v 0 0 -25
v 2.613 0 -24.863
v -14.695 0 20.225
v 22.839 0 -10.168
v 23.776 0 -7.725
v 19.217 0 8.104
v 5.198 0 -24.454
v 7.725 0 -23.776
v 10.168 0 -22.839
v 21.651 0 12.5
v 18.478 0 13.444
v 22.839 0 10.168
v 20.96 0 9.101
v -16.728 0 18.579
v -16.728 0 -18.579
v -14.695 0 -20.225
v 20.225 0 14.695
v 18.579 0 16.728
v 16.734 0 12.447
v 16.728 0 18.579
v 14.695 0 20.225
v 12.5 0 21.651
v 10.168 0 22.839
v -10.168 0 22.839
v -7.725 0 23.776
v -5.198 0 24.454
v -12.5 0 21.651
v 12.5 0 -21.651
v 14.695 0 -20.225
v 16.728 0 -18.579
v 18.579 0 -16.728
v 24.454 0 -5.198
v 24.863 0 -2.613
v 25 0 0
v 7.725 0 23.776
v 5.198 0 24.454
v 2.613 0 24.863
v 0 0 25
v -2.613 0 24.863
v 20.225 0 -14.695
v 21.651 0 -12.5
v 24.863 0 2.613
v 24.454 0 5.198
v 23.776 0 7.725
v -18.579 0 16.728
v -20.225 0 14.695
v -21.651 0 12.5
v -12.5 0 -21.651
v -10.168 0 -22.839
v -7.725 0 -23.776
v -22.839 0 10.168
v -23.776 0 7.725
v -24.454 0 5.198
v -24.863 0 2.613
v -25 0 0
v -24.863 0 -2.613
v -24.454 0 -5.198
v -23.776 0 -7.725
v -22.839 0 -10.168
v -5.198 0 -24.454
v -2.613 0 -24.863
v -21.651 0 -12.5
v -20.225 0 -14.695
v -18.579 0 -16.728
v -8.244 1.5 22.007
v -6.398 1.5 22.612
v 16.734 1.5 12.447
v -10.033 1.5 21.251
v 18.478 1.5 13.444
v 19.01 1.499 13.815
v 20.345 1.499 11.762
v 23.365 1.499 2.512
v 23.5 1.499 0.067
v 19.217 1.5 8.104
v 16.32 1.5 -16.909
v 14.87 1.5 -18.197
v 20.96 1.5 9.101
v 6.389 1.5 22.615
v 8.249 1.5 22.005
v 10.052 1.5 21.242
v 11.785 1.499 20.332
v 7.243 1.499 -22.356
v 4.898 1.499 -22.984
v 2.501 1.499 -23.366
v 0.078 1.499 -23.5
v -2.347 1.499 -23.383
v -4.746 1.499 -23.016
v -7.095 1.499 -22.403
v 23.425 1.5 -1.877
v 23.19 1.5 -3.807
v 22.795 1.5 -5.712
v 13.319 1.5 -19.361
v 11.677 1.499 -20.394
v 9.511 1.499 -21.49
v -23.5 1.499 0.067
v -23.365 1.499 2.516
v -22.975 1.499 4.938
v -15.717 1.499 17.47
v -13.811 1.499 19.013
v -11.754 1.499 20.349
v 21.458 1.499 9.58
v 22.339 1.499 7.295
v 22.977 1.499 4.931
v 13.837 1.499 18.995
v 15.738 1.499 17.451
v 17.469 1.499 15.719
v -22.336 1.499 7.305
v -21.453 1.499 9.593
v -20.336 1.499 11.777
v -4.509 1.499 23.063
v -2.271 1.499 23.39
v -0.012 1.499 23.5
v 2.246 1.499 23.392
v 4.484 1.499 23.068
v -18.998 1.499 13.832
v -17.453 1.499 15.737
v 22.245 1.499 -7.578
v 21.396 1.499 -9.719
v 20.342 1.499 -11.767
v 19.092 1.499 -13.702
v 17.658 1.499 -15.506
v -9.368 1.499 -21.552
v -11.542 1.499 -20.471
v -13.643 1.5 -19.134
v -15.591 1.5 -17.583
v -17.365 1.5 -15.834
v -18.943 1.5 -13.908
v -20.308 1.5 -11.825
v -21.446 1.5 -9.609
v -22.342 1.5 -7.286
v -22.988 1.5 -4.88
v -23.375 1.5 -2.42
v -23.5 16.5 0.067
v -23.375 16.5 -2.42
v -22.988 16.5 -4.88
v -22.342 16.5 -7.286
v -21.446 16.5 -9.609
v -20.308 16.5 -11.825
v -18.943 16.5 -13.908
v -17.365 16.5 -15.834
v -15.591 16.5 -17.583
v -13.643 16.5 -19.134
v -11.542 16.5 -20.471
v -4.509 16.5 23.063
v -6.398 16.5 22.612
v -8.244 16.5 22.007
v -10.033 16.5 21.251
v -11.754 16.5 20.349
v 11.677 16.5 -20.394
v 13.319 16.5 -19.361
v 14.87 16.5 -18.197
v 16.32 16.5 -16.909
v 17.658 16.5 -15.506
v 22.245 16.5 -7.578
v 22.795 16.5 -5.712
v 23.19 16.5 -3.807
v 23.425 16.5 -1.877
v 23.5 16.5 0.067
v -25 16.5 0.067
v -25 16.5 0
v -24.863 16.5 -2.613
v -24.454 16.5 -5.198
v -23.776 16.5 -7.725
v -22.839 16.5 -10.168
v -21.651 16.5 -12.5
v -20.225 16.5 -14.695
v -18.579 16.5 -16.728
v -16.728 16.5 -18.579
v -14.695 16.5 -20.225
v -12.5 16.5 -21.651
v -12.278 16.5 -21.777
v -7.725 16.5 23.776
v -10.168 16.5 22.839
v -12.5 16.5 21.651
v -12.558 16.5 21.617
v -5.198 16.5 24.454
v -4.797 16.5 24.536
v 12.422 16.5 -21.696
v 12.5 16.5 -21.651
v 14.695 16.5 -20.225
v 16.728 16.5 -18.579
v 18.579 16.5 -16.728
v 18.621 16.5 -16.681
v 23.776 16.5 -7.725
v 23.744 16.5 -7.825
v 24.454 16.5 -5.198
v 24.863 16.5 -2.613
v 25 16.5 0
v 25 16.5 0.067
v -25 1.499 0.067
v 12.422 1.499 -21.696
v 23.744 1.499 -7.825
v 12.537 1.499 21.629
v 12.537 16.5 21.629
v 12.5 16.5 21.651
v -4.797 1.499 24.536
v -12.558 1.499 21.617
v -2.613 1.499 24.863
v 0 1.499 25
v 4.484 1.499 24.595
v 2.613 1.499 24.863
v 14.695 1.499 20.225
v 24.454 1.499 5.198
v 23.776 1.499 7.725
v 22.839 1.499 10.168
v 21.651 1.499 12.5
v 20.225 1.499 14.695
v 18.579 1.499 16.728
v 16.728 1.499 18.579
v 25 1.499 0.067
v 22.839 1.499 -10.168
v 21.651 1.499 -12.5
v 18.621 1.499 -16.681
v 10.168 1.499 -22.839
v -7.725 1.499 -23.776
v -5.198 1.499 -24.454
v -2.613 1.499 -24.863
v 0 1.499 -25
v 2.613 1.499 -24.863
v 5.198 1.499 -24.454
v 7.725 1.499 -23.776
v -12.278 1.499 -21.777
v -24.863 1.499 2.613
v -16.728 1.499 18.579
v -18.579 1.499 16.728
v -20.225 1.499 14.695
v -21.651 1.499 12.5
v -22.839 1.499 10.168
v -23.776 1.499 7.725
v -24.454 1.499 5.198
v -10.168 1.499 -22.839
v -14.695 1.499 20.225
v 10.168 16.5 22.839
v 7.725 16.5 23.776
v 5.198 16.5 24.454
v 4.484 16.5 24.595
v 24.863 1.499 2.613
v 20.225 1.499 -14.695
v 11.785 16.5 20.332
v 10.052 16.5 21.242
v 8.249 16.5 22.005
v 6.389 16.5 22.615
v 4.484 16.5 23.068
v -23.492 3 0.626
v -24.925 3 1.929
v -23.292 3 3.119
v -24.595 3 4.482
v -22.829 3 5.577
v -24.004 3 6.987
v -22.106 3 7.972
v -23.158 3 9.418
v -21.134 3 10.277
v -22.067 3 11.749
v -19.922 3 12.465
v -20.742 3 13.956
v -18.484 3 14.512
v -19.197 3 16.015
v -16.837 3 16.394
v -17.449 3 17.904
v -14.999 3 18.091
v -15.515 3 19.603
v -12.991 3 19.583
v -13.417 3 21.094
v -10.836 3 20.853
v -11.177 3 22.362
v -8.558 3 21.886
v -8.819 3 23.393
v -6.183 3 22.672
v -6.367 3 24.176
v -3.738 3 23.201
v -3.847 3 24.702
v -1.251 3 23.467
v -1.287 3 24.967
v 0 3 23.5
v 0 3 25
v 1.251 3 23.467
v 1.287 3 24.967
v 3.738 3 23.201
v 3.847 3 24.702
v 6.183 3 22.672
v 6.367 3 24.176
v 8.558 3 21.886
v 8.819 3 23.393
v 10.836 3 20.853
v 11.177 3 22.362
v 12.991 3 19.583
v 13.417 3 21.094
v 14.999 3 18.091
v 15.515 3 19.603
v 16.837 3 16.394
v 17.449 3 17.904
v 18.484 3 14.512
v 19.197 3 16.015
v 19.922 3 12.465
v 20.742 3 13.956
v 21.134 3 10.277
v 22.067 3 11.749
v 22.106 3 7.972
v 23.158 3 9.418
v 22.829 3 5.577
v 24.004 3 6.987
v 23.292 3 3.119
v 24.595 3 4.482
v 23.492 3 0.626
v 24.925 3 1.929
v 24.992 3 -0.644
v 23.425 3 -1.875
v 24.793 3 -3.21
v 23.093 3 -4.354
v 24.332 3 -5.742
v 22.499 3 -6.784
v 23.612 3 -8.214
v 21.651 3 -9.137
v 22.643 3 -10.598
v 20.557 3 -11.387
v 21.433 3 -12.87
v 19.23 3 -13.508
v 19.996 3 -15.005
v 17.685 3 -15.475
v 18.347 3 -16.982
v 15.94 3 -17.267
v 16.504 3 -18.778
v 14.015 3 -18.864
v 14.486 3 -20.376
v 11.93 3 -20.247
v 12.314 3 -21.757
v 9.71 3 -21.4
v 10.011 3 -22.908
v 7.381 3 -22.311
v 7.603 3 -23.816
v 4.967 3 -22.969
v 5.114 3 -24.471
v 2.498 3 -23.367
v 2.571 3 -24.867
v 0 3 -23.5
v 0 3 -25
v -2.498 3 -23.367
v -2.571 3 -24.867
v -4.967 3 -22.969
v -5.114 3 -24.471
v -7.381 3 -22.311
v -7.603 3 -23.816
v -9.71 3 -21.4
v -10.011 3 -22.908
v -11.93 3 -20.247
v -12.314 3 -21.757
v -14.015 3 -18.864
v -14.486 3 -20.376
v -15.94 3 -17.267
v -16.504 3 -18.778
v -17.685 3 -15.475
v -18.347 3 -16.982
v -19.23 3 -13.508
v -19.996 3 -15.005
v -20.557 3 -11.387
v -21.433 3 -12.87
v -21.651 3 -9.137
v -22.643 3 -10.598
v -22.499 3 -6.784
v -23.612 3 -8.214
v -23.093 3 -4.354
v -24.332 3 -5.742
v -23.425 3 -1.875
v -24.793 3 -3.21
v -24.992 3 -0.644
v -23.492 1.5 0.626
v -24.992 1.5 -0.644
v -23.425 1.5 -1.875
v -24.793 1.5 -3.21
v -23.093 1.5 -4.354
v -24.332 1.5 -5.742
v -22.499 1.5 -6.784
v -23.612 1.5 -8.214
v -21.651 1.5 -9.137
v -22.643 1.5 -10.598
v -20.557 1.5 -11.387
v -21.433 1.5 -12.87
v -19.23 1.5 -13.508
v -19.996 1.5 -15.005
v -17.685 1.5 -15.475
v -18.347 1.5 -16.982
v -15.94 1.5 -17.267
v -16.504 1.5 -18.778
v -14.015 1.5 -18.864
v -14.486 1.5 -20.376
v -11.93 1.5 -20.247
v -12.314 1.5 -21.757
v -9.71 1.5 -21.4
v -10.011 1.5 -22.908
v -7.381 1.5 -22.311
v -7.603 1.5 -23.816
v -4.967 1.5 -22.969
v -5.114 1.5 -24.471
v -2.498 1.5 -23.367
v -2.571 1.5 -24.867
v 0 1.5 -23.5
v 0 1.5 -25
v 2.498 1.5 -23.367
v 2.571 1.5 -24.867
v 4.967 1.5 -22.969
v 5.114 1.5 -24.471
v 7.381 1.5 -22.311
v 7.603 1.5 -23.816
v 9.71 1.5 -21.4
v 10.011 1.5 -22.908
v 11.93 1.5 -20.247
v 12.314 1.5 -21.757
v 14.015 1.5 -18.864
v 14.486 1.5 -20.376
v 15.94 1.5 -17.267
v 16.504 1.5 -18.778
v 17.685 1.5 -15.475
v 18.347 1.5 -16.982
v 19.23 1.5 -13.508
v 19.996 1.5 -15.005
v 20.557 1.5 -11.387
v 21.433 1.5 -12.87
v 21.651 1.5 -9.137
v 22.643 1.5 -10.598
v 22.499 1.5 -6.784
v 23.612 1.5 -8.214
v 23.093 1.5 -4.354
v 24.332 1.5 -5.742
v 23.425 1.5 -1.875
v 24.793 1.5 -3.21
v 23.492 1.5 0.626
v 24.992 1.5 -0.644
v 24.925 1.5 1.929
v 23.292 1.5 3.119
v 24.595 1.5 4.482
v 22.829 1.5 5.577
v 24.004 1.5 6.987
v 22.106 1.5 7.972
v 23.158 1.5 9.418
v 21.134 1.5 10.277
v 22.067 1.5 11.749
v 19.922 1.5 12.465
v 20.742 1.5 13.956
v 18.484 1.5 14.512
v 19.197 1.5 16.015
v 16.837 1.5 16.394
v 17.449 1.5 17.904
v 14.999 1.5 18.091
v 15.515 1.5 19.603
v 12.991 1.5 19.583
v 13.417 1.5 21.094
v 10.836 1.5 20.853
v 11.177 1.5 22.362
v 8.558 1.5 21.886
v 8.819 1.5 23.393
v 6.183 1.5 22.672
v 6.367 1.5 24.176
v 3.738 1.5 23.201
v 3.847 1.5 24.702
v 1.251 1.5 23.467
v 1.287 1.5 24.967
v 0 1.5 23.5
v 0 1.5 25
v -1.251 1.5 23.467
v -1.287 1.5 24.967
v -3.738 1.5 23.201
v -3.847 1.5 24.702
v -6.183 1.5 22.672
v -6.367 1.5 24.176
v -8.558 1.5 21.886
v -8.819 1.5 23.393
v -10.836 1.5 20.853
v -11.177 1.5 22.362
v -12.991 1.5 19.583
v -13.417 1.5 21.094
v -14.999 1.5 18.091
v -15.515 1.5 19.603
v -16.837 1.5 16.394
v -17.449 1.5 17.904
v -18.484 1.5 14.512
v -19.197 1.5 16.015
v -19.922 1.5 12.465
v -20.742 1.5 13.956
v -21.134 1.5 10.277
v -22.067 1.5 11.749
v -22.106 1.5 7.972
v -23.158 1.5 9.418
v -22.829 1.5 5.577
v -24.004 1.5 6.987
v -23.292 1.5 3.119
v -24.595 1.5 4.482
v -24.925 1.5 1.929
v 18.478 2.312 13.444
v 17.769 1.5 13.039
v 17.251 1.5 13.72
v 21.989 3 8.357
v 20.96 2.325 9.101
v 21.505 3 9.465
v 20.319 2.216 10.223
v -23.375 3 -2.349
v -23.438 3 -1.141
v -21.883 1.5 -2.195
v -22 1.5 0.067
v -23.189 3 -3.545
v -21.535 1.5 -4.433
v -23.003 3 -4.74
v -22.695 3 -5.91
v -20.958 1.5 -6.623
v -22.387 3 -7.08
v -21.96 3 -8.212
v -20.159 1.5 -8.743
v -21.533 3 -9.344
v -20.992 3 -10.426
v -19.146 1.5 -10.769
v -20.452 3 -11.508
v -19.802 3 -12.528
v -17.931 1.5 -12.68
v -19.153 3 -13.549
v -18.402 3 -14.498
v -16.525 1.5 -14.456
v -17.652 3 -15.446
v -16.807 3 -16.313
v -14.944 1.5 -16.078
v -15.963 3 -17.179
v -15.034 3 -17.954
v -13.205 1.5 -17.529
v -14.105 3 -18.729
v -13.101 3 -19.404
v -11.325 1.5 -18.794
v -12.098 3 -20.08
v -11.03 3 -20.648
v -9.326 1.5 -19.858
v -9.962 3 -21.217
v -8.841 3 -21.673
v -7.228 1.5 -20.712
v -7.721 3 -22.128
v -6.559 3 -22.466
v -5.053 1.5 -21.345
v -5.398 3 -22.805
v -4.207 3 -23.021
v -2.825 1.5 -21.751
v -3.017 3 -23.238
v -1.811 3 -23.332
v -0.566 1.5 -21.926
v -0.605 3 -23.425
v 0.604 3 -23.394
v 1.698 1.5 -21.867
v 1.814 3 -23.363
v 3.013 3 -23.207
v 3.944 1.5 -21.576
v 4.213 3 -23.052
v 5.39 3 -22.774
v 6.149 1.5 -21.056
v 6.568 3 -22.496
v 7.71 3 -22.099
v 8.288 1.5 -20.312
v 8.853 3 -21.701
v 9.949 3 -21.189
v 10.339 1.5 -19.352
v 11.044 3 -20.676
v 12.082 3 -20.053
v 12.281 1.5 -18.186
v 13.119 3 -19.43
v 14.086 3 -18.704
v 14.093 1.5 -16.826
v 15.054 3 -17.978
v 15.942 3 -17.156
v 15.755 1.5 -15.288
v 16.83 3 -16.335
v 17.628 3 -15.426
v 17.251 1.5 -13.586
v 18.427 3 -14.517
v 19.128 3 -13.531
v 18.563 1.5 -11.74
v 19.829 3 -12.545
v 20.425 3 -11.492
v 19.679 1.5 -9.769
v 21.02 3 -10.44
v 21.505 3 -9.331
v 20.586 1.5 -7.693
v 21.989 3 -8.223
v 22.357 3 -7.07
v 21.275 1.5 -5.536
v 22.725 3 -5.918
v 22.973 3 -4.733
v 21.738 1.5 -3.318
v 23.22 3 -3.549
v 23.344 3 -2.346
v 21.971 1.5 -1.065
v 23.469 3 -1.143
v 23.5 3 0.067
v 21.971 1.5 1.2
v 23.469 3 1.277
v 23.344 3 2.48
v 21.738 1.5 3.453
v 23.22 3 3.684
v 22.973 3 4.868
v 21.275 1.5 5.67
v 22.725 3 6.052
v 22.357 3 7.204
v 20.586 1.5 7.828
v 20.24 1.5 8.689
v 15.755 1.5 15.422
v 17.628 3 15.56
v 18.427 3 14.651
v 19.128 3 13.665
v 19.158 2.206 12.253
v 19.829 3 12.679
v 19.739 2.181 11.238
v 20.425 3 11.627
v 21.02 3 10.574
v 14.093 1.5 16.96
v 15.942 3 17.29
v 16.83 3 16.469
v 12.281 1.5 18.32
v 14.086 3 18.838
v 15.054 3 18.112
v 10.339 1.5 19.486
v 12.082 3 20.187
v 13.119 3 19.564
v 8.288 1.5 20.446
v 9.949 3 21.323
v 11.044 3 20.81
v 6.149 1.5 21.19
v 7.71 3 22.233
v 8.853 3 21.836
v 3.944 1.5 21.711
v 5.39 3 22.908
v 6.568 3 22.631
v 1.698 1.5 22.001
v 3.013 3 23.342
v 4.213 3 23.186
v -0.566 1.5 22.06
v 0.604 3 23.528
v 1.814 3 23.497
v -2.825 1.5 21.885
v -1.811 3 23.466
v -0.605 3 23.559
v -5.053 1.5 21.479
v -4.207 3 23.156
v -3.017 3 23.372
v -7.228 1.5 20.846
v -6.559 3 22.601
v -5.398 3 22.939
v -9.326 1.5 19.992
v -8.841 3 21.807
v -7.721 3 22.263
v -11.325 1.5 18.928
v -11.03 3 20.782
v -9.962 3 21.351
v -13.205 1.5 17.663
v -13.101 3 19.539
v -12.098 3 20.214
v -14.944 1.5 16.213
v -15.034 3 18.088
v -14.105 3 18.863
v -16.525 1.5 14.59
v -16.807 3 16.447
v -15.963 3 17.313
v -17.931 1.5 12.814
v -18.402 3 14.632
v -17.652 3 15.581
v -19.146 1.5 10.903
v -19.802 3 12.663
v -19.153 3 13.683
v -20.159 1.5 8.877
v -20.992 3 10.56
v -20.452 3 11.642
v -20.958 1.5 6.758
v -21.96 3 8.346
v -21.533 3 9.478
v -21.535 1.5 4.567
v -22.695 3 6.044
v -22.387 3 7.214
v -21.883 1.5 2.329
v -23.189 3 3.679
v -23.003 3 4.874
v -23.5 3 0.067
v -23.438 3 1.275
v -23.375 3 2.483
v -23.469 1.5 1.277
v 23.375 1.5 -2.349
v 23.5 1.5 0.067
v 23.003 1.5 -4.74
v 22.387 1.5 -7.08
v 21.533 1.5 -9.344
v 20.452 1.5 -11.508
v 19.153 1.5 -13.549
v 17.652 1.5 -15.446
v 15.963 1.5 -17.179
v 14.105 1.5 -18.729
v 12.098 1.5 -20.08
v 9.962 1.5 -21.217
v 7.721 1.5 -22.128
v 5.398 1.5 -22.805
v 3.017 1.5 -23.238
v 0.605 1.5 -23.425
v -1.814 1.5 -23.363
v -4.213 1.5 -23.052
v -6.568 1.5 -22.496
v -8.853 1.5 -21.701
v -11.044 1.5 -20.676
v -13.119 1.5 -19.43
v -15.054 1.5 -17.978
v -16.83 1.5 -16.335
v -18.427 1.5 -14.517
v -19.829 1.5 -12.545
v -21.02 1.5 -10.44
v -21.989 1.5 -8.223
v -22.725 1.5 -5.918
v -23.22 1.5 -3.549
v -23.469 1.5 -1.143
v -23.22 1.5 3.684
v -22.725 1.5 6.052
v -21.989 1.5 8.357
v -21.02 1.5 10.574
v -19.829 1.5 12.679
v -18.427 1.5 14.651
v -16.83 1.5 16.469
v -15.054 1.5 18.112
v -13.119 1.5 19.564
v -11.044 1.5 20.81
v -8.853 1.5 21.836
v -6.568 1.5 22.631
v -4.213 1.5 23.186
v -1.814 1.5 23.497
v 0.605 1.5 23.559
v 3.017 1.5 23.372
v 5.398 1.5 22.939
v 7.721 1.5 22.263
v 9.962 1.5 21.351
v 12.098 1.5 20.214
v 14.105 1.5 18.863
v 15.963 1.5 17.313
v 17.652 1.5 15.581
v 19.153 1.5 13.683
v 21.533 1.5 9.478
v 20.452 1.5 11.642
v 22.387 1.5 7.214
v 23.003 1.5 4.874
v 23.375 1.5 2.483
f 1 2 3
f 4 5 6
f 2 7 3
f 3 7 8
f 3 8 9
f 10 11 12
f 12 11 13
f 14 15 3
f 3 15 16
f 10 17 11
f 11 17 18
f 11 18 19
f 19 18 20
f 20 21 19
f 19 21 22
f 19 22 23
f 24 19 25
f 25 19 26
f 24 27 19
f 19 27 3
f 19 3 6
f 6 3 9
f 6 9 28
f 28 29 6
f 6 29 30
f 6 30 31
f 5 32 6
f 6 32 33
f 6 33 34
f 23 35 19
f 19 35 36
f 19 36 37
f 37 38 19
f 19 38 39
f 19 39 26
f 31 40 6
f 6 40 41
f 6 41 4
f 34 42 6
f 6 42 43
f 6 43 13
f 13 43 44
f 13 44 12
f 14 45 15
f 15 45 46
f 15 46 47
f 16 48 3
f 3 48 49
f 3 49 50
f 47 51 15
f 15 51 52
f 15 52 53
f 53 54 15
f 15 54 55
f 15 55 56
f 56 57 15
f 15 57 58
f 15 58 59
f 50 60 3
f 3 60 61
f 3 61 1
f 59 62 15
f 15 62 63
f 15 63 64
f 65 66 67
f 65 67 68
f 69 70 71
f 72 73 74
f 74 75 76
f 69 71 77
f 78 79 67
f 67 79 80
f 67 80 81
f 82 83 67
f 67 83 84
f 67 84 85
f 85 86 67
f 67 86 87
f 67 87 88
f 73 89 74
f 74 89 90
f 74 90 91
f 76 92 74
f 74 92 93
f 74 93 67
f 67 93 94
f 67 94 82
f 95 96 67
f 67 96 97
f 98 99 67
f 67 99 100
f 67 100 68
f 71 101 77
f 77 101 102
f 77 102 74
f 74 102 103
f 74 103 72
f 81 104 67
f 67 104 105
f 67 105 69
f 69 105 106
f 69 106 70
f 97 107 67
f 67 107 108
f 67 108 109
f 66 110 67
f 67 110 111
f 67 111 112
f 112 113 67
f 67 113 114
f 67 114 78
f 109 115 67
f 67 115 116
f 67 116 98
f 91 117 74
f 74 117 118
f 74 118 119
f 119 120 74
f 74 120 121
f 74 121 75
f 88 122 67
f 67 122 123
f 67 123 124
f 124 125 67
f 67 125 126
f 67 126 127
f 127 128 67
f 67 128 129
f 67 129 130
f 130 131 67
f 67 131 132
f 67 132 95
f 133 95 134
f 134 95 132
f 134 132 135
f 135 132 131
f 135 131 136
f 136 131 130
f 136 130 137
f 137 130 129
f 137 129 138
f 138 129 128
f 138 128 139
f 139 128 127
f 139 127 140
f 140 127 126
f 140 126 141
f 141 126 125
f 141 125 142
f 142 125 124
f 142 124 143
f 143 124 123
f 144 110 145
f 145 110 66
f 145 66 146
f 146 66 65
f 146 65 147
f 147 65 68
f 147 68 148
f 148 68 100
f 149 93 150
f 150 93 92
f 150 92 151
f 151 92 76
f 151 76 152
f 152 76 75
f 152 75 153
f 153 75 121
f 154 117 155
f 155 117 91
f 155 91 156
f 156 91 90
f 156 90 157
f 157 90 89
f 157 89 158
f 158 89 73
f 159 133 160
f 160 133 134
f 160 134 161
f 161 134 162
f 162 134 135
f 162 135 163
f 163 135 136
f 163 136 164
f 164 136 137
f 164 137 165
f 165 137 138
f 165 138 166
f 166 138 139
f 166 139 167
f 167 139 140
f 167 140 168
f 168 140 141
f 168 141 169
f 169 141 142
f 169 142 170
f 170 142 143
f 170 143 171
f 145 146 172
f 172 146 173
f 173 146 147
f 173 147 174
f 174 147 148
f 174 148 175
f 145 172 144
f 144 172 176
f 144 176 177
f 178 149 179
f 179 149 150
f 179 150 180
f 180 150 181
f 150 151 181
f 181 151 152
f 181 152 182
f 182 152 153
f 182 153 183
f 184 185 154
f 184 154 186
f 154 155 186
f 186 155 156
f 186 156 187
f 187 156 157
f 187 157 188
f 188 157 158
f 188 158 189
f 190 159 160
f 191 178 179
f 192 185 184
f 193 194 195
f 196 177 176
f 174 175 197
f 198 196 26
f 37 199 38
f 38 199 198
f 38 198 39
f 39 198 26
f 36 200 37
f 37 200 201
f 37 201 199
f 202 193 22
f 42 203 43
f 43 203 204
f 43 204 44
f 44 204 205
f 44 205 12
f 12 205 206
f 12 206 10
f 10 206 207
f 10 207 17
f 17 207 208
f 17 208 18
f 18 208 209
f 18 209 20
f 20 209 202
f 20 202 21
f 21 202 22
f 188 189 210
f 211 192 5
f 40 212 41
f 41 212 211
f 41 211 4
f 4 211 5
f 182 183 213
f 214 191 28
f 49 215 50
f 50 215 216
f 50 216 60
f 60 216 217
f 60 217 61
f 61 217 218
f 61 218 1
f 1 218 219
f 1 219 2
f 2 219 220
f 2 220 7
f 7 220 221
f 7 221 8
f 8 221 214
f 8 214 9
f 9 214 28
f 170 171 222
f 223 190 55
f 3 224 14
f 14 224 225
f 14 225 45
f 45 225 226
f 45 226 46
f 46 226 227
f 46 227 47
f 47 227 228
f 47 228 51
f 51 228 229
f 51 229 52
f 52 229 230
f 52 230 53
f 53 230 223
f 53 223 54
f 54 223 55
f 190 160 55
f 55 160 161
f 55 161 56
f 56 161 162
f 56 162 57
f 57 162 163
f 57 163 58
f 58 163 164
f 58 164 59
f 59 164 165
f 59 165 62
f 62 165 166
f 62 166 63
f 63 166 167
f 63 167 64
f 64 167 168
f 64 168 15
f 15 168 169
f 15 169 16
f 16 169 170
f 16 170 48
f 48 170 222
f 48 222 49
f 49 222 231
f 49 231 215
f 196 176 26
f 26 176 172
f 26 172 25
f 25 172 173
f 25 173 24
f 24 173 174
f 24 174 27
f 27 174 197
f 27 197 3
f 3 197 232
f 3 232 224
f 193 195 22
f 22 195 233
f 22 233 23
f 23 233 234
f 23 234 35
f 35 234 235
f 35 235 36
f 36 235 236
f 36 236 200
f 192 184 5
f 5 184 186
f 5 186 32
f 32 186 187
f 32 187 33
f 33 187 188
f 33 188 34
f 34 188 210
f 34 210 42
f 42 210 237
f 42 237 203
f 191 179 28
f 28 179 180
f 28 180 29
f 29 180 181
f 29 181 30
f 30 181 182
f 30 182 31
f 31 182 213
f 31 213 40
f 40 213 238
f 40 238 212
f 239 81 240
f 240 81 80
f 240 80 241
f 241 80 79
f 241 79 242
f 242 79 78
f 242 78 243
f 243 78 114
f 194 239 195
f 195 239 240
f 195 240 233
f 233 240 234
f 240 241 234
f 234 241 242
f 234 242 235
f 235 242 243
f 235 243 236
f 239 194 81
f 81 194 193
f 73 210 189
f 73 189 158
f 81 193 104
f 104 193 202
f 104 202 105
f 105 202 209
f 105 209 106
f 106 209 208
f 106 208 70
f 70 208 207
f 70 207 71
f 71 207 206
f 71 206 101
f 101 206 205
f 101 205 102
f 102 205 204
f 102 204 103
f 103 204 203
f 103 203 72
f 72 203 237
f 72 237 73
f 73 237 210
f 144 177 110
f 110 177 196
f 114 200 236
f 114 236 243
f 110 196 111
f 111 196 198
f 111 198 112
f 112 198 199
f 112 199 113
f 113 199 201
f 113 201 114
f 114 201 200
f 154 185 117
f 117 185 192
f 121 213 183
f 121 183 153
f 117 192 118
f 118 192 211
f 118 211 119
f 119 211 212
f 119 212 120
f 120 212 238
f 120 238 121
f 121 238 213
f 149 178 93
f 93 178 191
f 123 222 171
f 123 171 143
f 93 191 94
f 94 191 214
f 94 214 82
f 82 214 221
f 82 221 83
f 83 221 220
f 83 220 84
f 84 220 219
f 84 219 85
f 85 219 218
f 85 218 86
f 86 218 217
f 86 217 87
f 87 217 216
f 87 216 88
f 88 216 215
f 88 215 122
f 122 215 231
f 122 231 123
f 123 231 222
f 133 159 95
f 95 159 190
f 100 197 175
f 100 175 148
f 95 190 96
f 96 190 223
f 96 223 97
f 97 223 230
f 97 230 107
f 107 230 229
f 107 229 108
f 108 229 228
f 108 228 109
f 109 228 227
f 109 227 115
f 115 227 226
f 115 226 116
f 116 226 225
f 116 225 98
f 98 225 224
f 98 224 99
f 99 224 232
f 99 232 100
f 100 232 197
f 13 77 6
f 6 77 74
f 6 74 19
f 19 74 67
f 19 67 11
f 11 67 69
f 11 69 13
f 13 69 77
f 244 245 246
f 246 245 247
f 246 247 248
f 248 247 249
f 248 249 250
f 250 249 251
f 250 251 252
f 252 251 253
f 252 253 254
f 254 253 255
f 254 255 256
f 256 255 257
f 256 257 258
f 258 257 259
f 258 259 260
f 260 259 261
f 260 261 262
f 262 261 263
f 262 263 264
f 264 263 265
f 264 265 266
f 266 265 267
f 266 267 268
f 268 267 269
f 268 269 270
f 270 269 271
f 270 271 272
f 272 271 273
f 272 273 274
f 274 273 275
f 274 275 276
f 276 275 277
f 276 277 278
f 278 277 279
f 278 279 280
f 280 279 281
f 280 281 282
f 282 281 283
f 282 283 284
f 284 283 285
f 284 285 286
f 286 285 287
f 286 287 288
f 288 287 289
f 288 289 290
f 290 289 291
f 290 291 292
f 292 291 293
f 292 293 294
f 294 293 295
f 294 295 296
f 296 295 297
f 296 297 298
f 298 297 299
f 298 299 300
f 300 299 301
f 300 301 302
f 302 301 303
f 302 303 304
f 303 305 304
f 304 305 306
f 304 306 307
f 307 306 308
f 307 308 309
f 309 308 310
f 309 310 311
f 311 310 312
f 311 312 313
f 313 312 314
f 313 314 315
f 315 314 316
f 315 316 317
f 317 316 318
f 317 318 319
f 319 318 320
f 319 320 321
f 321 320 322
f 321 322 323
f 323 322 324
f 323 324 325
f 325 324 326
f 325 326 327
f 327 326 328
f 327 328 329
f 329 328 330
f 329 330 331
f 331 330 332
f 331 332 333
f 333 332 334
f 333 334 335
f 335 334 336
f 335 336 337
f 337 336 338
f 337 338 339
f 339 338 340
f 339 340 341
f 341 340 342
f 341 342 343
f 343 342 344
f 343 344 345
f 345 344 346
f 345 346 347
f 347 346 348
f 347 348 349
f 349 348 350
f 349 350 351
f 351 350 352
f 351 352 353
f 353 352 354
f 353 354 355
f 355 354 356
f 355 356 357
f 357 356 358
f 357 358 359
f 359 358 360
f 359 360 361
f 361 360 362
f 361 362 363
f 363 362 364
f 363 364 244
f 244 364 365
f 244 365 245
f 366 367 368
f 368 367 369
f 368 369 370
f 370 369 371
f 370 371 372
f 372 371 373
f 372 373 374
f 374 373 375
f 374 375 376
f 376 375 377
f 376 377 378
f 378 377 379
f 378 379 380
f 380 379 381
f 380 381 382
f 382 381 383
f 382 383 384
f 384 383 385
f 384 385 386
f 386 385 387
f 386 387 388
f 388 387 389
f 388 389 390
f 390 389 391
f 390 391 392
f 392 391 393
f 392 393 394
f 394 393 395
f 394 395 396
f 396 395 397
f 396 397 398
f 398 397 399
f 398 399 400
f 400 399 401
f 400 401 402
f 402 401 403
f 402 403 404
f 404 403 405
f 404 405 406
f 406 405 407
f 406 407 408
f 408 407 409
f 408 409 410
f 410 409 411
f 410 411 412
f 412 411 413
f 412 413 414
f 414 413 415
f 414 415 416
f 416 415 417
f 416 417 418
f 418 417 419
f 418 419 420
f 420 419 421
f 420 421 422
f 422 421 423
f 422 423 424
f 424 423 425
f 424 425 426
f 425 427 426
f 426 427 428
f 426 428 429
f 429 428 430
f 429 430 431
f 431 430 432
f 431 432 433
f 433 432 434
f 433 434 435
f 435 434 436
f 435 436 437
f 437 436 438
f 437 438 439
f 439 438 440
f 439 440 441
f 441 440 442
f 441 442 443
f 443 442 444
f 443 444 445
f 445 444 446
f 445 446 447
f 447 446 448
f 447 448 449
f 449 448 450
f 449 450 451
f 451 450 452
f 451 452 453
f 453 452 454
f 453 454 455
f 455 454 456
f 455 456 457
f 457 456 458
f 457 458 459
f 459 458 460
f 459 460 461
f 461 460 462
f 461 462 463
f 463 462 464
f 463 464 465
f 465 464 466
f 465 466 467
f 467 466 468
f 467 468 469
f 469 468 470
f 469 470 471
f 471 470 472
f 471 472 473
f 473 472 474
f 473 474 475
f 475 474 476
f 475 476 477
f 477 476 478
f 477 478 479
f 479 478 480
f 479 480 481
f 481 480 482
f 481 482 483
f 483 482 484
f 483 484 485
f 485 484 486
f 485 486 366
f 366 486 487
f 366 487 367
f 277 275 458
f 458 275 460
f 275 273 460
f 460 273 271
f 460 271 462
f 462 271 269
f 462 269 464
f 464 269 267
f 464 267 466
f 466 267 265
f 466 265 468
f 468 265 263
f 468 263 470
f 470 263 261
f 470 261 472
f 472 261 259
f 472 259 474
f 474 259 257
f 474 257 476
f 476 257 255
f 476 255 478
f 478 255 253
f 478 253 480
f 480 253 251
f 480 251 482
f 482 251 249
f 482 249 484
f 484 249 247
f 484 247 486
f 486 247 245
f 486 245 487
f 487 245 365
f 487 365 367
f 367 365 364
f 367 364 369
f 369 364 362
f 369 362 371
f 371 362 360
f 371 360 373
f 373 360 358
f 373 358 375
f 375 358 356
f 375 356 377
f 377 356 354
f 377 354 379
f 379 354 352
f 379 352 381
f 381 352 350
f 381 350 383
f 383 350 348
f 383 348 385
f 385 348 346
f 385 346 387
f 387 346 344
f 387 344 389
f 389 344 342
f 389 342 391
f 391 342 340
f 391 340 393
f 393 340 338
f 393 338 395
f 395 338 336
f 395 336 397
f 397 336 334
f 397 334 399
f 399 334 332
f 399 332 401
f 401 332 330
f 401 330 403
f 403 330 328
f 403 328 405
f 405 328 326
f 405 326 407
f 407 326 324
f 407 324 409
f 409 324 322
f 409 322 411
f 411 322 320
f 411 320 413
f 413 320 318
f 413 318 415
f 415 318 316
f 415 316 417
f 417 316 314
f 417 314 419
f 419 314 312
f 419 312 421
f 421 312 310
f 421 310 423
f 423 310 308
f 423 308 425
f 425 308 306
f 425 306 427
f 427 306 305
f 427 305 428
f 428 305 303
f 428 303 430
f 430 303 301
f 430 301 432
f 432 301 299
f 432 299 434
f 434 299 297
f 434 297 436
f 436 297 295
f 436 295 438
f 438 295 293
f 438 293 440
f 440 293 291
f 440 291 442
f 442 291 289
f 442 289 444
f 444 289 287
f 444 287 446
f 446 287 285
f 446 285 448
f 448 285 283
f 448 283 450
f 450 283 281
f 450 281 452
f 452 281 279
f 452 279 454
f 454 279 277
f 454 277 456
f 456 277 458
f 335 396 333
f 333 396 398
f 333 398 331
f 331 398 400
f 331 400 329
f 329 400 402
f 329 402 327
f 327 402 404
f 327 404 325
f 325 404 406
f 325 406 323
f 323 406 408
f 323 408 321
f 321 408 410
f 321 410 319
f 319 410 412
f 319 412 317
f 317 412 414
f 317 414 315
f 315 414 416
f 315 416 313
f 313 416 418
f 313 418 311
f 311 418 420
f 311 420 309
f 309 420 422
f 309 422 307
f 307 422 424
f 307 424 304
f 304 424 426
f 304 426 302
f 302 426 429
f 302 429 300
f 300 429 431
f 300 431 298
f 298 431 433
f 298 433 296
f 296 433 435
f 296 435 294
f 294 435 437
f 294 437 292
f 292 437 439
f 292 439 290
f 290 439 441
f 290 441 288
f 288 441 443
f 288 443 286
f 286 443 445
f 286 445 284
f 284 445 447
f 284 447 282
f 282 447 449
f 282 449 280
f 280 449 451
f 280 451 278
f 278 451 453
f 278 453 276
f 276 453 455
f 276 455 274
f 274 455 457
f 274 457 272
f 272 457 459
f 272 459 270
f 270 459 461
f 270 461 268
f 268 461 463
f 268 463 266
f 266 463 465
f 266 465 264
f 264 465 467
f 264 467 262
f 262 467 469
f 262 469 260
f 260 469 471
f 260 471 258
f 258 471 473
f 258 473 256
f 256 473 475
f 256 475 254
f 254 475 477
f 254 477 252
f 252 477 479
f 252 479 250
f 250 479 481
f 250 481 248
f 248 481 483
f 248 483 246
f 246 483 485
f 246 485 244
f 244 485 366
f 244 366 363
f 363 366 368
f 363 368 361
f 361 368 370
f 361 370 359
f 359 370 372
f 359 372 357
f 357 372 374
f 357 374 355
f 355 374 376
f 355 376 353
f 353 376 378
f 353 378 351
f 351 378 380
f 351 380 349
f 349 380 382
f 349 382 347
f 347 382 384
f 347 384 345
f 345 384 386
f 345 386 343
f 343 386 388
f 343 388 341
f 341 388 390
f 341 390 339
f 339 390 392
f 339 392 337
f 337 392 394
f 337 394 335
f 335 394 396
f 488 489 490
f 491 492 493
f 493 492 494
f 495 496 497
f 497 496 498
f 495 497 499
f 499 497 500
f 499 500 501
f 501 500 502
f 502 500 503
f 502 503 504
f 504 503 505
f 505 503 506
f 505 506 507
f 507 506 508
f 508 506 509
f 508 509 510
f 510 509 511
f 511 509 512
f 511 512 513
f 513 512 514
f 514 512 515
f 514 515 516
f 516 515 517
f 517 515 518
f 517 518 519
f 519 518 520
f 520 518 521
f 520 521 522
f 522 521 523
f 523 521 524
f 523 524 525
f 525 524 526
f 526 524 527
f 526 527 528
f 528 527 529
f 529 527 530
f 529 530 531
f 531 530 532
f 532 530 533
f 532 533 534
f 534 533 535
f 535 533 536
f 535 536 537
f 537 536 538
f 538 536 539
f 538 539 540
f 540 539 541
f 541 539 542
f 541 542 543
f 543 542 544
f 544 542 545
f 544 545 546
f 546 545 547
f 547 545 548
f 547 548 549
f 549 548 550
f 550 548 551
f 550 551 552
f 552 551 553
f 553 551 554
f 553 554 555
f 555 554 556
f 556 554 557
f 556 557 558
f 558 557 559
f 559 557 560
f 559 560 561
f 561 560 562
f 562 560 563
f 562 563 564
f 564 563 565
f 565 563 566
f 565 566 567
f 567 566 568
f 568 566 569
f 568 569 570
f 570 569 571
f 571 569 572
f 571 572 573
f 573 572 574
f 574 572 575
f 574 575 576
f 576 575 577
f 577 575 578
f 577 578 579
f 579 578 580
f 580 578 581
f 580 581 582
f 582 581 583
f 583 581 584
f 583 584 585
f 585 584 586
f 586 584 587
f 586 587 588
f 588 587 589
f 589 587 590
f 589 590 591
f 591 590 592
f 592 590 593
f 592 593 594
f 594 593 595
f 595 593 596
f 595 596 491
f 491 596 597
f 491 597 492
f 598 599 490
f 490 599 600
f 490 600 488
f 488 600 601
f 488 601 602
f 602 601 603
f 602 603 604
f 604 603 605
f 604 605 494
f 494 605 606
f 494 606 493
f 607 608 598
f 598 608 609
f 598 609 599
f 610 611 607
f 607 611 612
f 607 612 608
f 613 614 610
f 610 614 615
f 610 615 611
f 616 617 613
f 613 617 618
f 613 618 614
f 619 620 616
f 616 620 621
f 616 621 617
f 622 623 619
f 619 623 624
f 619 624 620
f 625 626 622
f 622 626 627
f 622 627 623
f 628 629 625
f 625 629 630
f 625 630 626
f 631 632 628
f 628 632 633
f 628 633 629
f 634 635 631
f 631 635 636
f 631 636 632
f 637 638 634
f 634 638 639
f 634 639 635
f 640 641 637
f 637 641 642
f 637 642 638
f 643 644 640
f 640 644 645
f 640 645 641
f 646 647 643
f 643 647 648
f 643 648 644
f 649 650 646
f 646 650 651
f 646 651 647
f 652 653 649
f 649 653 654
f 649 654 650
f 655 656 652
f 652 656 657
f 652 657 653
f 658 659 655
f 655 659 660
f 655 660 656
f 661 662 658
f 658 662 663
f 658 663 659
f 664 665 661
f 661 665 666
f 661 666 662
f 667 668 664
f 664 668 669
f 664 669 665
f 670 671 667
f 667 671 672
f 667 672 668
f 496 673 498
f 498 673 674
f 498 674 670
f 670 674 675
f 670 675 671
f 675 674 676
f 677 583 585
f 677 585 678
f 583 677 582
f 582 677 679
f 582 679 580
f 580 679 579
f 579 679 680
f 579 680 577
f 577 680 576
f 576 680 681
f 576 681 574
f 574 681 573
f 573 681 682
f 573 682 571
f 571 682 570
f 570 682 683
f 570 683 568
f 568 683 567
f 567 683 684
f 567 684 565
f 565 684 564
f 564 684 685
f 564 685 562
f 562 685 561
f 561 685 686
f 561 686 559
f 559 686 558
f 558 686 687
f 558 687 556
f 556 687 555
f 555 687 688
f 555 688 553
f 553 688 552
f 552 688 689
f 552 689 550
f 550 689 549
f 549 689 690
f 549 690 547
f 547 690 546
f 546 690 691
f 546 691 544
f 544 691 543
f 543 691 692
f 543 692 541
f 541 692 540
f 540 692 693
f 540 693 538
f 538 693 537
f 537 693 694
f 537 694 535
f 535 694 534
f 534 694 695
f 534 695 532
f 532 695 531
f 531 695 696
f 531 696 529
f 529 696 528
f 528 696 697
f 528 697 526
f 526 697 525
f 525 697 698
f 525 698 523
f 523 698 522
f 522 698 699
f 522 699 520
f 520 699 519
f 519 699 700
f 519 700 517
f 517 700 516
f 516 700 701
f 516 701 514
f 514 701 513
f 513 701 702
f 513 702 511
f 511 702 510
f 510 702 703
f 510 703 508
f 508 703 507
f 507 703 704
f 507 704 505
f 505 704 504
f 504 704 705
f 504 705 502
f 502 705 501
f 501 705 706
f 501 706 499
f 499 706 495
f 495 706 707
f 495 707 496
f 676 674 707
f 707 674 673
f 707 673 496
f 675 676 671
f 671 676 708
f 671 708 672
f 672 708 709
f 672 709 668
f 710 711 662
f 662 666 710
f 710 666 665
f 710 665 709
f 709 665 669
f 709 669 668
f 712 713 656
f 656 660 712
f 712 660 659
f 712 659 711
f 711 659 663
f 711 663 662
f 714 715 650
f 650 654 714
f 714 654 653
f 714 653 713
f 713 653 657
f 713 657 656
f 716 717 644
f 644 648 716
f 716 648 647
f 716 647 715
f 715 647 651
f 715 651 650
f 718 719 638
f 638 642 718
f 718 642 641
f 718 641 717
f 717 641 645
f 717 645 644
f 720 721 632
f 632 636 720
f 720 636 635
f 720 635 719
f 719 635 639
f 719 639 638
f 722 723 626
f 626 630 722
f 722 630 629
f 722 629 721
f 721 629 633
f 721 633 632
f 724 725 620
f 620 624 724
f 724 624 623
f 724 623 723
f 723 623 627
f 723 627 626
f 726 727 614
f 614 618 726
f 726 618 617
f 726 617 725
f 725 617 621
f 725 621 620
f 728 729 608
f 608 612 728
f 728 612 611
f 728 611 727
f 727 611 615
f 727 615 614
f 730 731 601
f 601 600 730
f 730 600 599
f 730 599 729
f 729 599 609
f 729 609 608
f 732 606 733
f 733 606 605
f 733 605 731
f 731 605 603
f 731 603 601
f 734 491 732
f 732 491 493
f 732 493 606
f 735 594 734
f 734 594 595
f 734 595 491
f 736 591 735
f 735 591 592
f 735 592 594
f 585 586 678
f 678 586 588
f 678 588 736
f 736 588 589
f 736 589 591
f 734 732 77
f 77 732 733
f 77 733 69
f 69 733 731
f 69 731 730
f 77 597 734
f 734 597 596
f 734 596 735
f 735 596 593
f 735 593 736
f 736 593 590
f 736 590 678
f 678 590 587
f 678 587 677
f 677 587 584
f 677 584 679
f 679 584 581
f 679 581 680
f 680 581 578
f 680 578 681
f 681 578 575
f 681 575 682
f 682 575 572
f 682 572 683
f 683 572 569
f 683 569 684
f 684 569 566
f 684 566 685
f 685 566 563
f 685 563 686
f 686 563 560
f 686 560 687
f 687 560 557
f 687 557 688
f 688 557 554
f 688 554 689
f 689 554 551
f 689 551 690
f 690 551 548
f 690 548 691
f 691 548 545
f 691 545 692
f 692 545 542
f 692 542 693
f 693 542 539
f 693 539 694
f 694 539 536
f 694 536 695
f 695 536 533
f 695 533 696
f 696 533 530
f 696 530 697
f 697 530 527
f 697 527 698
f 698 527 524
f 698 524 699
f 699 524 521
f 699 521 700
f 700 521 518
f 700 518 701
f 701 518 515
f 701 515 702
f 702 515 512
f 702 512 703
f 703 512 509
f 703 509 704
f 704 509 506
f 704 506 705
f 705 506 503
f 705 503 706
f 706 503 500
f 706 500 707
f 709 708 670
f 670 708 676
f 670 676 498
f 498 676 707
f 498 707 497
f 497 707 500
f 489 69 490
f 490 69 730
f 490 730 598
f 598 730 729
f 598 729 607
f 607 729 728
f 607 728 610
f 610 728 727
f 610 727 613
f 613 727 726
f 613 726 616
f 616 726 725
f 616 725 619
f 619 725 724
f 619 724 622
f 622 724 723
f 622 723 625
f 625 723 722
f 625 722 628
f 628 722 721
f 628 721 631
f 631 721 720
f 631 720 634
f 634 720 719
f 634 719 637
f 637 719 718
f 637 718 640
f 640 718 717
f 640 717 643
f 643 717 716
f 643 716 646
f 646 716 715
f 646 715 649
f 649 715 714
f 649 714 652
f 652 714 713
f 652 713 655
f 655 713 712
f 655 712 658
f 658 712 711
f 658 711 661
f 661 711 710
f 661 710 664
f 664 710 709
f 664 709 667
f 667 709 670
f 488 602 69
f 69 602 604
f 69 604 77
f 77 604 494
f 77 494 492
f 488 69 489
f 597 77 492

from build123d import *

# Parameters (mm, degrees)
SKETCH1_R               = 25
BOSS_EXTRUDE1_DEPTH     = 1.5
BOSS_EXTRUDE2_DEPTH     = 15
CUT_EXTRUDE3_DEPTH      = 15
CUT_EXTRUDE3_DEPTH_BACK = 0.001
CUT_EXTRUDE4_DEPTH      = 5.001
SKETCH9_R               = 25
SKETCH9_R_2             = 23.5
BOSS_EXTRUDE4_DEPTH     = 1.5
CUT_EXTRUDE5_DEPTH      = 4.5


with BuildPart() as part:
    # Sketch1 → Boss-Extrude1 (new body)
    with BuildSketch(Plane(origin=(0, 0, 0), x_dir=(1, 0, 0), z_dir=(0, 1, 0))):
        Circle(SKETCH1_R)
    extrude(amount=BOSS_EXTRUDE1_DEPTH)

    # Sketch3 → Boss-Extrude2 (add)
    with BuildSketch(Plane(origin=(0, 1.5, 0), x_dir=(1, 0, 0), z_dir=(0, 1, 0))):
        with BuildLine():
            ThreePointArc((25, 0), (-10.270047641, 22.793115659), (-16.562089716, -18.726910696))
            ThreePointArc((-16.562089716, -18.726910696), (10.270047641, -22.793115659), (25, 0))
        make_face()
        with BuildLine():
            ThreePointArc((23.5, 0), (9.653844782, -21.42552872), (-15.568364333, -17.603296054))
            ThreePointArc((-15.568364333, -17.603296054), (-9.653844782, 21.42552872), (23.5, 0))
        make_face(mode=Mode.SUBTRACT)
    extrude(amount=BOSS_EXTRUDE2_DEPTH)

    # Sketch4 → Cut-Extrude3 (cut, two sides: drawn at the far end of the back side and taken through both)
    with BuildSketch(Plane(origin=(0, 1.5, 0), x_dir=(1, 0, 0), z_dir=(0, 1, 0)).offset(-CUT_EXTRUDE3_DEPTH_BACK)):
        with BuildLine():
            Line((11.784714356, -20.331515132), (12.536930166, -21.629271417))
            ThreePointArc((12.536930166, -21.629271417), (21.64452184, -12.510582494), (24.999909933, -0.067106913))
            Line((24.999909933, -0.067106913), (23.499904184, -0.067106913))
            ThreePointArc((23.499904184, -0.067106913), (20.344842995, -11.761690504), (11.784714356, -20.331515132))
        make_face()
        with BuildLine():
            ThreePointArc((-4.796569027, -24.535544126), (-0.158926829, -24.99949484), (4.48423915, -24.594544095))
            Line((4.48423915, -24.594544095), (4.48423915, -23.068194538))
            ThreePointArc((4.48423915, -23.068194538), (-0.0124988, -23.499996676), (-4.508774886, -23.063411479))
            Line((-4.508774886, -23.063411479), (-4.796569027, -24.535544126))
        make_face()
        with BuildLine():
            ThreePointArc((-24.999909933, -0.067106913), (-21.650665798, -12.49994682), (-12.558177453, -21.616941945))
            Line((-12.558177453, -21.616941945), (-11.753909653, -20.349339249))
            ThreePointArc((-11.753909653, -20.349339249), (-20.335930877, -11.777092823), (-23.499904184, -0.067106913))
            Line((-23.499904184, -0.067106913), (-24.999909933, -0.067106913))
        make_face()
        with BuildLine():
            Line((22.244801118, 7.577520917), (23.743699089, 7.825391591))
            ThreePointArc((23.743699089, 7.825391591), (21.640227627, 12.518008956), (18.621106201, 16.680959321))
            Line((18.621106201, 16.680959321), (17.658496176, 15.505725162))
            ThreePointArc((17.658496176, 15.505725162), (20.341641757, 11.767226123), (22.244801118, 7.577520917))
        make_face()
        with BuildLine():
            ThreePointArc((12.42188042, 21.695549931), (0.082599021, 24.999863548), (-12.27824751, 21.777158632))
            Line((-12.27824751, 21.777158632), (-11.541552659, 20.470529114))
            ThreePointArc((-11.541552659, 20.470529114), (0.07764308, 23.499871735), (11.676567595, 20.393816936))
            Line((11.676567595, 20.393816936), (12.42188042, 21.695549931))
        make_face()
    extrude(amount=CUT_EXTRUDE3_DEPTH + CUT_EXTRUDE3_DEPTH_BACK, mode=Mode.SUBTRACT)

    # Sketch5 → Cut-Extrude4 (cut)
    with BuildSketch(Plane.XZ):
        Polygon((16.733709956, 12.446973803), (19.216503445, 8.104071987), (20.960461392, 9.101075286), (18.477667903, 13.443977102), align=None)
    extrude(amount=-CUT_EXTRUDE4_DEPTH, mode=Mode.SUBTRACT)


with BuildPart() as body_2:
    # Sketch8 → Revolve4 (revolve)
    with BuildSketch(Plane.XY.offset(0.067106913)):
        Polygon((-23.499904184, 3), (-23.499904184, 1.5), (-21.999904184, 1.5), align=None)
    revolve(axis=Axis((0, 0, 0.067106913), (0, 1, 0)))

    # Sketch10 → Cut-Extrude5 (cut)
    with BuildSketch(Plane.XZ):
        Polygon((19.216503445, 8.104071987), (20.960461392, 9.101075286), (18.477667903, 13.443977102), (16.733709956, 12.446973803), align=None)
    extrude(amount=-CUT_EXTRUDE5_DEPTH, mode=Mode.SUBTRACT)


with BuildPart() as body_3:
    # Sketch9 → Boss-Extrude4 (new body)
    with BuildSketch(Plane(origin=(0, 1.5, 0), x_dir=(1, 0, 0), z_dir=(0, 1, 0))):
        Circle(SKETCH9_R)
        Circle(SKETCH9_R_2, mode=Mode.SUBTRACT)
    extrude(amount=BOSS_EXTRUDE4_DEPTH)


solid = Compound([part.part, body_2.part, body_3.part])
